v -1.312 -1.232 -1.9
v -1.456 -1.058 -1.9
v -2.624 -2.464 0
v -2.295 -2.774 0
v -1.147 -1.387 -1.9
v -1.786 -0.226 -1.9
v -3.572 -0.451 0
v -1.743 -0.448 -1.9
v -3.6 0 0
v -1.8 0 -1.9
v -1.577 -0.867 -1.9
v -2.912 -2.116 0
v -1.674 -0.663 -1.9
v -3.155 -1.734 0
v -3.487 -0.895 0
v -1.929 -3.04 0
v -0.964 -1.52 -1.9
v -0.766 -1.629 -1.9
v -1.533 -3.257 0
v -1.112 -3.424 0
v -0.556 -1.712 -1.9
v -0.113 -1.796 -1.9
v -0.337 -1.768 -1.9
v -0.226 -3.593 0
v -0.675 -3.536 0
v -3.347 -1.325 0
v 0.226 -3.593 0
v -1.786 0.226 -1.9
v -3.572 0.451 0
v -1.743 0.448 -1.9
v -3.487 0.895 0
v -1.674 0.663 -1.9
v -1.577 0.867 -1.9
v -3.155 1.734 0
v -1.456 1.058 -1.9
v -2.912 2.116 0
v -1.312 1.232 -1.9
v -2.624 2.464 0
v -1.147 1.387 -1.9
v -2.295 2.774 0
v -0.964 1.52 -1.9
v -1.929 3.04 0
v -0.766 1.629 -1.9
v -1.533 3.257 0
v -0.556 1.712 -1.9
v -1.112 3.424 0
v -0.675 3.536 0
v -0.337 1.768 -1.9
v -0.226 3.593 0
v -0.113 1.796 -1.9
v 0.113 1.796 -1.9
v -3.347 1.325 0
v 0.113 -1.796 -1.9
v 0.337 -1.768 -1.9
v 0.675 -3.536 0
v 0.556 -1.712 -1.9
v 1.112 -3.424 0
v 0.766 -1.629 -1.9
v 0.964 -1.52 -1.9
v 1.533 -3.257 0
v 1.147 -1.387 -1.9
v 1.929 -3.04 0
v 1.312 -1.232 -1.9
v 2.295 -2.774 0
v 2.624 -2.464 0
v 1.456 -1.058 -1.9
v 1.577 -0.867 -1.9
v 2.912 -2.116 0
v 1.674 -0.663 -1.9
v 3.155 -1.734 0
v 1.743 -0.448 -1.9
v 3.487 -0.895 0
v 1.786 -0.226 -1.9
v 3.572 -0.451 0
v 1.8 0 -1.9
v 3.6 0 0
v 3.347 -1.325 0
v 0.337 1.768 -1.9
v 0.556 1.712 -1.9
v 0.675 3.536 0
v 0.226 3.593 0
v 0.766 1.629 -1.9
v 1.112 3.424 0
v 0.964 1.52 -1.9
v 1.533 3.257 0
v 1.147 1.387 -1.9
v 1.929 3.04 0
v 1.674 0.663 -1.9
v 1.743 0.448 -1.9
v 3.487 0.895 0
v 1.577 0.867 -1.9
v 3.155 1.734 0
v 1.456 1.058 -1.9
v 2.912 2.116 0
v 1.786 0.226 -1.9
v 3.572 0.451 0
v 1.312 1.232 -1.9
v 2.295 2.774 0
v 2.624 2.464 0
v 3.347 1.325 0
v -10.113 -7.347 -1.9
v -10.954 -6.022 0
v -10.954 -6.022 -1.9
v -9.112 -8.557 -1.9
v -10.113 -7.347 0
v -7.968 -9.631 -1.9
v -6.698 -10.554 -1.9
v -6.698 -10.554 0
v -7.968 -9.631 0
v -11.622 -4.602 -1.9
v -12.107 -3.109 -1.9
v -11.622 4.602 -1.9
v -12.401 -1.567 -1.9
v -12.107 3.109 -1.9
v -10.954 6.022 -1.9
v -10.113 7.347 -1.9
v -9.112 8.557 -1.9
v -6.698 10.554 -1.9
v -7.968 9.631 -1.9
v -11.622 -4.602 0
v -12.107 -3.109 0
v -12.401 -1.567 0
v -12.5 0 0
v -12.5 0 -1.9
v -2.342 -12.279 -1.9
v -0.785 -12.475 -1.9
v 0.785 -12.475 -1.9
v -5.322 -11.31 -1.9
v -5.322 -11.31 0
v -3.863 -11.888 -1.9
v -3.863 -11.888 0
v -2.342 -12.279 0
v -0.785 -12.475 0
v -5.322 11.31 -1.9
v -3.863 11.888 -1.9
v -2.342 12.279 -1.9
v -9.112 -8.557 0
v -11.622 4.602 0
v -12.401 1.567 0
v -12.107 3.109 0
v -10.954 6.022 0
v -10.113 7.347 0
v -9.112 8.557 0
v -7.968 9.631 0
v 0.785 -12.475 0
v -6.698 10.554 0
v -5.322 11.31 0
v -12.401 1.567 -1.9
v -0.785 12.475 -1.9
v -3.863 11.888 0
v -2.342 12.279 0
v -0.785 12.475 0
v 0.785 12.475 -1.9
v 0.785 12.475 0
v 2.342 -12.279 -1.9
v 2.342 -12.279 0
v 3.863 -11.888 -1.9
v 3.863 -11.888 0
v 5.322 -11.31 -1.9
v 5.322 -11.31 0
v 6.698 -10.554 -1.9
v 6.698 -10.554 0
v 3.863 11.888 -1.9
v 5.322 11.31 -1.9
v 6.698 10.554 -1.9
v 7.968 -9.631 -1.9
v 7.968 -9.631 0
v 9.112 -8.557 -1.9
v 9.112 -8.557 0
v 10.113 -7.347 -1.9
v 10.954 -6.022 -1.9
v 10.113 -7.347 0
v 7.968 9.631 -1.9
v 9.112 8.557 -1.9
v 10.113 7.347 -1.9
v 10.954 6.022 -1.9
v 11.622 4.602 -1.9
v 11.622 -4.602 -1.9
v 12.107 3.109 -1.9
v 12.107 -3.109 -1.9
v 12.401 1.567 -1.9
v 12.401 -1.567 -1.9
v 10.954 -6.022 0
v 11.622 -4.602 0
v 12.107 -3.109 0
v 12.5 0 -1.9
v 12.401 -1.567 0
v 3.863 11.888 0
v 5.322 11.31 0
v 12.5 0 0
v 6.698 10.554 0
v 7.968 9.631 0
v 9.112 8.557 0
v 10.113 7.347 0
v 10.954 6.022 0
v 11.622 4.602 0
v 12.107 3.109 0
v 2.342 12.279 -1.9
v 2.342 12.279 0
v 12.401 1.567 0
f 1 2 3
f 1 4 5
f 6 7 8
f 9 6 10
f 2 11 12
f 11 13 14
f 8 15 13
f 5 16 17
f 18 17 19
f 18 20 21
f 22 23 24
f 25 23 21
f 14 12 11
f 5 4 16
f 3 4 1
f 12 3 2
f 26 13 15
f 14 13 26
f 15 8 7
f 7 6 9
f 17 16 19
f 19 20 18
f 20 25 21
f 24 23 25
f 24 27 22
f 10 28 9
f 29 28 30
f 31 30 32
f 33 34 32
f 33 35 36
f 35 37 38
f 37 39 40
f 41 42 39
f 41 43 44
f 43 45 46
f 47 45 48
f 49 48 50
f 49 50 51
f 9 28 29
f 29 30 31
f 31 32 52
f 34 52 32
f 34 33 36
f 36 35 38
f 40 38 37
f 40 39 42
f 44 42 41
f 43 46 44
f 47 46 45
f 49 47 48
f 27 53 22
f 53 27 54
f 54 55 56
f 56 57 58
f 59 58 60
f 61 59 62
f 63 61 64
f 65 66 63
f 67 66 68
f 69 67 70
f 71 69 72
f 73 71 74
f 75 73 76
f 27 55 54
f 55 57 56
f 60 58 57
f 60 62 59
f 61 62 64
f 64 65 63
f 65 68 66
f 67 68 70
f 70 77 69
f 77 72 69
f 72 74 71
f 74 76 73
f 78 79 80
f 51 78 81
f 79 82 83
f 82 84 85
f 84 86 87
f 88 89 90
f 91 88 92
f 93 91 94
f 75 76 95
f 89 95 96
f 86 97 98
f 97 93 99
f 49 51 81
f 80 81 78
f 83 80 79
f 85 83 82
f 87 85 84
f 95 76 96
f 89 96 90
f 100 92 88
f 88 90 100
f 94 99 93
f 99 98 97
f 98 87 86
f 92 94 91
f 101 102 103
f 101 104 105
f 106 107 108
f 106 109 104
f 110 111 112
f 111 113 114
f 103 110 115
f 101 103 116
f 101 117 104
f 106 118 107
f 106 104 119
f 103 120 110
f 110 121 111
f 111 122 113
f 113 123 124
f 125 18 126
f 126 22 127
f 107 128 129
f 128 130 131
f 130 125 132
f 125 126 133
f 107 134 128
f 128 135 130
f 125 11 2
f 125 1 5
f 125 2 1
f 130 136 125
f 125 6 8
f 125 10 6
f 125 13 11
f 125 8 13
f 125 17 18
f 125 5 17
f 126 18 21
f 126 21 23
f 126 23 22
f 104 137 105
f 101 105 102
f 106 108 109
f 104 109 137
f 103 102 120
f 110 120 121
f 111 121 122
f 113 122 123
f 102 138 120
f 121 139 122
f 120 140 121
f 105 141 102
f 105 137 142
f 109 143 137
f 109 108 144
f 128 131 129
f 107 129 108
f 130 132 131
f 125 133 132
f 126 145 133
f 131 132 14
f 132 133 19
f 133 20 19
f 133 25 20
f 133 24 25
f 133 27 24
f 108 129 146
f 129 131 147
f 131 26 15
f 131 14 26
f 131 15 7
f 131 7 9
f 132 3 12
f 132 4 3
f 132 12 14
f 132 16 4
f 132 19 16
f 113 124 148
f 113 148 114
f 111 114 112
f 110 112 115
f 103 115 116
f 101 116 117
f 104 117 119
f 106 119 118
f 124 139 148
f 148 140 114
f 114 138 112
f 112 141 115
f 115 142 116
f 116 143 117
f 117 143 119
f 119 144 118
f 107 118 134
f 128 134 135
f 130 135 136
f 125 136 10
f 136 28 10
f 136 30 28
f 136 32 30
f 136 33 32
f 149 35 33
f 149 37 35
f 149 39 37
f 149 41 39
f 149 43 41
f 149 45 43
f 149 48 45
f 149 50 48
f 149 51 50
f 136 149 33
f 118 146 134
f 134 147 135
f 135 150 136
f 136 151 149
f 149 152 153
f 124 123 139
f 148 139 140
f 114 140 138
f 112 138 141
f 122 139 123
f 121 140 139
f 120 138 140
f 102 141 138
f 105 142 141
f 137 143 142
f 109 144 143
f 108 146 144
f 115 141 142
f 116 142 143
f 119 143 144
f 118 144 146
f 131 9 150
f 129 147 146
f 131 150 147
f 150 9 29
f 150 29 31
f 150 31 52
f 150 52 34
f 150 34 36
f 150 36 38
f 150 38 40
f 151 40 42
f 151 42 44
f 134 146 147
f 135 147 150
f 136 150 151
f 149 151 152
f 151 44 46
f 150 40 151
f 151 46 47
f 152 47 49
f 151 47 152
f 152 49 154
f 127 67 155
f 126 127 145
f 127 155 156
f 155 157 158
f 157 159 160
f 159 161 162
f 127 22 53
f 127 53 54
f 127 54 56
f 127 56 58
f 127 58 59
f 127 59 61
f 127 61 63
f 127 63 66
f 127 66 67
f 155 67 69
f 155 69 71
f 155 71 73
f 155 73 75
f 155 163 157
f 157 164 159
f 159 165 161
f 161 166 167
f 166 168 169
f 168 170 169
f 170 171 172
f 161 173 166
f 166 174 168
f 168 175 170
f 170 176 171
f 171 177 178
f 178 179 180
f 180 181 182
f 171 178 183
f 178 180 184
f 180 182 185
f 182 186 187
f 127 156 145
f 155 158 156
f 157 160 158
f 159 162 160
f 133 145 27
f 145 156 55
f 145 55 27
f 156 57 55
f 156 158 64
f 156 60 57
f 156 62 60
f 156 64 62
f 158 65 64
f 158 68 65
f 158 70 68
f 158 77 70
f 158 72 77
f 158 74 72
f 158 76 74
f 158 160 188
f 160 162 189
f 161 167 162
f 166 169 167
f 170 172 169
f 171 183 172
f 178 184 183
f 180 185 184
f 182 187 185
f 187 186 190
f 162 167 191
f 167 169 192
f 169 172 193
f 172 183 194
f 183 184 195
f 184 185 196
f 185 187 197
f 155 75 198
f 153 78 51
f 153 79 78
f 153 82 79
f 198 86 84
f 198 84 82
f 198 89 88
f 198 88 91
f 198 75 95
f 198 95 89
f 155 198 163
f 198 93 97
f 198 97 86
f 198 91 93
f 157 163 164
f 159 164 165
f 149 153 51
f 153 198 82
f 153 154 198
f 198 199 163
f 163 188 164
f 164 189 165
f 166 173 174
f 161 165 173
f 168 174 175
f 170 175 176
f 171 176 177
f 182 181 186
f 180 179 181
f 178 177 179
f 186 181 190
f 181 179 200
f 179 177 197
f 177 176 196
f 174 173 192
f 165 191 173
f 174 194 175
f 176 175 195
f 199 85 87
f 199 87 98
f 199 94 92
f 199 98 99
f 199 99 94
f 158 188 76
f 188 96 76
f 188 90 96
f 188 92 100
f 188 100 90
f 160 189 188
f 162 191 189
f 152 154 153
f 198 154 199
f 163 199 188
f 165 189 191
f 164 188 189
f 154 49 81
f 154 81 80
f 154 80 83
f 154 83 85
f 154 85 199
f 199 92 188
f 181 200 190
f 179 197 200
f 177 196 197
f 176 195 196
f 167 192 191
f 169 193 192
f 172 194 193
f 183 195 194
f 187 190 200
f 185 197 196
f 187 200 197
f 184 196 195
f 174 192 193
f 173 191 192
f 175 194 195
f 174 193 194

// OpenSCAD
$fn = 50;

difference() {
	union() {
		translate(v = [0, 0, -1.9]) {
			cylinder(h = 1.9, r = 12.5);
		}
	}
	union() {
		translate(v = [0, 0, 0]) {
			rotate(a = [0, 0, 0]) {
				difference() {
					union() {
						translate(v = [0, 0, -4.9]) {
							cylinder(h = 4.9, r = 1.5);
						}
						translate(v = [0, 0, -1.9]) {
							cylinder(h = 1.9, r1 = 1.8, r2 = 3.6);
						}
						translate(v = [0, 0, -4.9]) {
							cylinder(h = 4.9, r = 1.8);
						}
						translate(v = [0, 0, -4.9]) {
							cylinder(h = 4.9, r = 1.5);
						}
					}
					union();
				}
			}
		}
	}
}
